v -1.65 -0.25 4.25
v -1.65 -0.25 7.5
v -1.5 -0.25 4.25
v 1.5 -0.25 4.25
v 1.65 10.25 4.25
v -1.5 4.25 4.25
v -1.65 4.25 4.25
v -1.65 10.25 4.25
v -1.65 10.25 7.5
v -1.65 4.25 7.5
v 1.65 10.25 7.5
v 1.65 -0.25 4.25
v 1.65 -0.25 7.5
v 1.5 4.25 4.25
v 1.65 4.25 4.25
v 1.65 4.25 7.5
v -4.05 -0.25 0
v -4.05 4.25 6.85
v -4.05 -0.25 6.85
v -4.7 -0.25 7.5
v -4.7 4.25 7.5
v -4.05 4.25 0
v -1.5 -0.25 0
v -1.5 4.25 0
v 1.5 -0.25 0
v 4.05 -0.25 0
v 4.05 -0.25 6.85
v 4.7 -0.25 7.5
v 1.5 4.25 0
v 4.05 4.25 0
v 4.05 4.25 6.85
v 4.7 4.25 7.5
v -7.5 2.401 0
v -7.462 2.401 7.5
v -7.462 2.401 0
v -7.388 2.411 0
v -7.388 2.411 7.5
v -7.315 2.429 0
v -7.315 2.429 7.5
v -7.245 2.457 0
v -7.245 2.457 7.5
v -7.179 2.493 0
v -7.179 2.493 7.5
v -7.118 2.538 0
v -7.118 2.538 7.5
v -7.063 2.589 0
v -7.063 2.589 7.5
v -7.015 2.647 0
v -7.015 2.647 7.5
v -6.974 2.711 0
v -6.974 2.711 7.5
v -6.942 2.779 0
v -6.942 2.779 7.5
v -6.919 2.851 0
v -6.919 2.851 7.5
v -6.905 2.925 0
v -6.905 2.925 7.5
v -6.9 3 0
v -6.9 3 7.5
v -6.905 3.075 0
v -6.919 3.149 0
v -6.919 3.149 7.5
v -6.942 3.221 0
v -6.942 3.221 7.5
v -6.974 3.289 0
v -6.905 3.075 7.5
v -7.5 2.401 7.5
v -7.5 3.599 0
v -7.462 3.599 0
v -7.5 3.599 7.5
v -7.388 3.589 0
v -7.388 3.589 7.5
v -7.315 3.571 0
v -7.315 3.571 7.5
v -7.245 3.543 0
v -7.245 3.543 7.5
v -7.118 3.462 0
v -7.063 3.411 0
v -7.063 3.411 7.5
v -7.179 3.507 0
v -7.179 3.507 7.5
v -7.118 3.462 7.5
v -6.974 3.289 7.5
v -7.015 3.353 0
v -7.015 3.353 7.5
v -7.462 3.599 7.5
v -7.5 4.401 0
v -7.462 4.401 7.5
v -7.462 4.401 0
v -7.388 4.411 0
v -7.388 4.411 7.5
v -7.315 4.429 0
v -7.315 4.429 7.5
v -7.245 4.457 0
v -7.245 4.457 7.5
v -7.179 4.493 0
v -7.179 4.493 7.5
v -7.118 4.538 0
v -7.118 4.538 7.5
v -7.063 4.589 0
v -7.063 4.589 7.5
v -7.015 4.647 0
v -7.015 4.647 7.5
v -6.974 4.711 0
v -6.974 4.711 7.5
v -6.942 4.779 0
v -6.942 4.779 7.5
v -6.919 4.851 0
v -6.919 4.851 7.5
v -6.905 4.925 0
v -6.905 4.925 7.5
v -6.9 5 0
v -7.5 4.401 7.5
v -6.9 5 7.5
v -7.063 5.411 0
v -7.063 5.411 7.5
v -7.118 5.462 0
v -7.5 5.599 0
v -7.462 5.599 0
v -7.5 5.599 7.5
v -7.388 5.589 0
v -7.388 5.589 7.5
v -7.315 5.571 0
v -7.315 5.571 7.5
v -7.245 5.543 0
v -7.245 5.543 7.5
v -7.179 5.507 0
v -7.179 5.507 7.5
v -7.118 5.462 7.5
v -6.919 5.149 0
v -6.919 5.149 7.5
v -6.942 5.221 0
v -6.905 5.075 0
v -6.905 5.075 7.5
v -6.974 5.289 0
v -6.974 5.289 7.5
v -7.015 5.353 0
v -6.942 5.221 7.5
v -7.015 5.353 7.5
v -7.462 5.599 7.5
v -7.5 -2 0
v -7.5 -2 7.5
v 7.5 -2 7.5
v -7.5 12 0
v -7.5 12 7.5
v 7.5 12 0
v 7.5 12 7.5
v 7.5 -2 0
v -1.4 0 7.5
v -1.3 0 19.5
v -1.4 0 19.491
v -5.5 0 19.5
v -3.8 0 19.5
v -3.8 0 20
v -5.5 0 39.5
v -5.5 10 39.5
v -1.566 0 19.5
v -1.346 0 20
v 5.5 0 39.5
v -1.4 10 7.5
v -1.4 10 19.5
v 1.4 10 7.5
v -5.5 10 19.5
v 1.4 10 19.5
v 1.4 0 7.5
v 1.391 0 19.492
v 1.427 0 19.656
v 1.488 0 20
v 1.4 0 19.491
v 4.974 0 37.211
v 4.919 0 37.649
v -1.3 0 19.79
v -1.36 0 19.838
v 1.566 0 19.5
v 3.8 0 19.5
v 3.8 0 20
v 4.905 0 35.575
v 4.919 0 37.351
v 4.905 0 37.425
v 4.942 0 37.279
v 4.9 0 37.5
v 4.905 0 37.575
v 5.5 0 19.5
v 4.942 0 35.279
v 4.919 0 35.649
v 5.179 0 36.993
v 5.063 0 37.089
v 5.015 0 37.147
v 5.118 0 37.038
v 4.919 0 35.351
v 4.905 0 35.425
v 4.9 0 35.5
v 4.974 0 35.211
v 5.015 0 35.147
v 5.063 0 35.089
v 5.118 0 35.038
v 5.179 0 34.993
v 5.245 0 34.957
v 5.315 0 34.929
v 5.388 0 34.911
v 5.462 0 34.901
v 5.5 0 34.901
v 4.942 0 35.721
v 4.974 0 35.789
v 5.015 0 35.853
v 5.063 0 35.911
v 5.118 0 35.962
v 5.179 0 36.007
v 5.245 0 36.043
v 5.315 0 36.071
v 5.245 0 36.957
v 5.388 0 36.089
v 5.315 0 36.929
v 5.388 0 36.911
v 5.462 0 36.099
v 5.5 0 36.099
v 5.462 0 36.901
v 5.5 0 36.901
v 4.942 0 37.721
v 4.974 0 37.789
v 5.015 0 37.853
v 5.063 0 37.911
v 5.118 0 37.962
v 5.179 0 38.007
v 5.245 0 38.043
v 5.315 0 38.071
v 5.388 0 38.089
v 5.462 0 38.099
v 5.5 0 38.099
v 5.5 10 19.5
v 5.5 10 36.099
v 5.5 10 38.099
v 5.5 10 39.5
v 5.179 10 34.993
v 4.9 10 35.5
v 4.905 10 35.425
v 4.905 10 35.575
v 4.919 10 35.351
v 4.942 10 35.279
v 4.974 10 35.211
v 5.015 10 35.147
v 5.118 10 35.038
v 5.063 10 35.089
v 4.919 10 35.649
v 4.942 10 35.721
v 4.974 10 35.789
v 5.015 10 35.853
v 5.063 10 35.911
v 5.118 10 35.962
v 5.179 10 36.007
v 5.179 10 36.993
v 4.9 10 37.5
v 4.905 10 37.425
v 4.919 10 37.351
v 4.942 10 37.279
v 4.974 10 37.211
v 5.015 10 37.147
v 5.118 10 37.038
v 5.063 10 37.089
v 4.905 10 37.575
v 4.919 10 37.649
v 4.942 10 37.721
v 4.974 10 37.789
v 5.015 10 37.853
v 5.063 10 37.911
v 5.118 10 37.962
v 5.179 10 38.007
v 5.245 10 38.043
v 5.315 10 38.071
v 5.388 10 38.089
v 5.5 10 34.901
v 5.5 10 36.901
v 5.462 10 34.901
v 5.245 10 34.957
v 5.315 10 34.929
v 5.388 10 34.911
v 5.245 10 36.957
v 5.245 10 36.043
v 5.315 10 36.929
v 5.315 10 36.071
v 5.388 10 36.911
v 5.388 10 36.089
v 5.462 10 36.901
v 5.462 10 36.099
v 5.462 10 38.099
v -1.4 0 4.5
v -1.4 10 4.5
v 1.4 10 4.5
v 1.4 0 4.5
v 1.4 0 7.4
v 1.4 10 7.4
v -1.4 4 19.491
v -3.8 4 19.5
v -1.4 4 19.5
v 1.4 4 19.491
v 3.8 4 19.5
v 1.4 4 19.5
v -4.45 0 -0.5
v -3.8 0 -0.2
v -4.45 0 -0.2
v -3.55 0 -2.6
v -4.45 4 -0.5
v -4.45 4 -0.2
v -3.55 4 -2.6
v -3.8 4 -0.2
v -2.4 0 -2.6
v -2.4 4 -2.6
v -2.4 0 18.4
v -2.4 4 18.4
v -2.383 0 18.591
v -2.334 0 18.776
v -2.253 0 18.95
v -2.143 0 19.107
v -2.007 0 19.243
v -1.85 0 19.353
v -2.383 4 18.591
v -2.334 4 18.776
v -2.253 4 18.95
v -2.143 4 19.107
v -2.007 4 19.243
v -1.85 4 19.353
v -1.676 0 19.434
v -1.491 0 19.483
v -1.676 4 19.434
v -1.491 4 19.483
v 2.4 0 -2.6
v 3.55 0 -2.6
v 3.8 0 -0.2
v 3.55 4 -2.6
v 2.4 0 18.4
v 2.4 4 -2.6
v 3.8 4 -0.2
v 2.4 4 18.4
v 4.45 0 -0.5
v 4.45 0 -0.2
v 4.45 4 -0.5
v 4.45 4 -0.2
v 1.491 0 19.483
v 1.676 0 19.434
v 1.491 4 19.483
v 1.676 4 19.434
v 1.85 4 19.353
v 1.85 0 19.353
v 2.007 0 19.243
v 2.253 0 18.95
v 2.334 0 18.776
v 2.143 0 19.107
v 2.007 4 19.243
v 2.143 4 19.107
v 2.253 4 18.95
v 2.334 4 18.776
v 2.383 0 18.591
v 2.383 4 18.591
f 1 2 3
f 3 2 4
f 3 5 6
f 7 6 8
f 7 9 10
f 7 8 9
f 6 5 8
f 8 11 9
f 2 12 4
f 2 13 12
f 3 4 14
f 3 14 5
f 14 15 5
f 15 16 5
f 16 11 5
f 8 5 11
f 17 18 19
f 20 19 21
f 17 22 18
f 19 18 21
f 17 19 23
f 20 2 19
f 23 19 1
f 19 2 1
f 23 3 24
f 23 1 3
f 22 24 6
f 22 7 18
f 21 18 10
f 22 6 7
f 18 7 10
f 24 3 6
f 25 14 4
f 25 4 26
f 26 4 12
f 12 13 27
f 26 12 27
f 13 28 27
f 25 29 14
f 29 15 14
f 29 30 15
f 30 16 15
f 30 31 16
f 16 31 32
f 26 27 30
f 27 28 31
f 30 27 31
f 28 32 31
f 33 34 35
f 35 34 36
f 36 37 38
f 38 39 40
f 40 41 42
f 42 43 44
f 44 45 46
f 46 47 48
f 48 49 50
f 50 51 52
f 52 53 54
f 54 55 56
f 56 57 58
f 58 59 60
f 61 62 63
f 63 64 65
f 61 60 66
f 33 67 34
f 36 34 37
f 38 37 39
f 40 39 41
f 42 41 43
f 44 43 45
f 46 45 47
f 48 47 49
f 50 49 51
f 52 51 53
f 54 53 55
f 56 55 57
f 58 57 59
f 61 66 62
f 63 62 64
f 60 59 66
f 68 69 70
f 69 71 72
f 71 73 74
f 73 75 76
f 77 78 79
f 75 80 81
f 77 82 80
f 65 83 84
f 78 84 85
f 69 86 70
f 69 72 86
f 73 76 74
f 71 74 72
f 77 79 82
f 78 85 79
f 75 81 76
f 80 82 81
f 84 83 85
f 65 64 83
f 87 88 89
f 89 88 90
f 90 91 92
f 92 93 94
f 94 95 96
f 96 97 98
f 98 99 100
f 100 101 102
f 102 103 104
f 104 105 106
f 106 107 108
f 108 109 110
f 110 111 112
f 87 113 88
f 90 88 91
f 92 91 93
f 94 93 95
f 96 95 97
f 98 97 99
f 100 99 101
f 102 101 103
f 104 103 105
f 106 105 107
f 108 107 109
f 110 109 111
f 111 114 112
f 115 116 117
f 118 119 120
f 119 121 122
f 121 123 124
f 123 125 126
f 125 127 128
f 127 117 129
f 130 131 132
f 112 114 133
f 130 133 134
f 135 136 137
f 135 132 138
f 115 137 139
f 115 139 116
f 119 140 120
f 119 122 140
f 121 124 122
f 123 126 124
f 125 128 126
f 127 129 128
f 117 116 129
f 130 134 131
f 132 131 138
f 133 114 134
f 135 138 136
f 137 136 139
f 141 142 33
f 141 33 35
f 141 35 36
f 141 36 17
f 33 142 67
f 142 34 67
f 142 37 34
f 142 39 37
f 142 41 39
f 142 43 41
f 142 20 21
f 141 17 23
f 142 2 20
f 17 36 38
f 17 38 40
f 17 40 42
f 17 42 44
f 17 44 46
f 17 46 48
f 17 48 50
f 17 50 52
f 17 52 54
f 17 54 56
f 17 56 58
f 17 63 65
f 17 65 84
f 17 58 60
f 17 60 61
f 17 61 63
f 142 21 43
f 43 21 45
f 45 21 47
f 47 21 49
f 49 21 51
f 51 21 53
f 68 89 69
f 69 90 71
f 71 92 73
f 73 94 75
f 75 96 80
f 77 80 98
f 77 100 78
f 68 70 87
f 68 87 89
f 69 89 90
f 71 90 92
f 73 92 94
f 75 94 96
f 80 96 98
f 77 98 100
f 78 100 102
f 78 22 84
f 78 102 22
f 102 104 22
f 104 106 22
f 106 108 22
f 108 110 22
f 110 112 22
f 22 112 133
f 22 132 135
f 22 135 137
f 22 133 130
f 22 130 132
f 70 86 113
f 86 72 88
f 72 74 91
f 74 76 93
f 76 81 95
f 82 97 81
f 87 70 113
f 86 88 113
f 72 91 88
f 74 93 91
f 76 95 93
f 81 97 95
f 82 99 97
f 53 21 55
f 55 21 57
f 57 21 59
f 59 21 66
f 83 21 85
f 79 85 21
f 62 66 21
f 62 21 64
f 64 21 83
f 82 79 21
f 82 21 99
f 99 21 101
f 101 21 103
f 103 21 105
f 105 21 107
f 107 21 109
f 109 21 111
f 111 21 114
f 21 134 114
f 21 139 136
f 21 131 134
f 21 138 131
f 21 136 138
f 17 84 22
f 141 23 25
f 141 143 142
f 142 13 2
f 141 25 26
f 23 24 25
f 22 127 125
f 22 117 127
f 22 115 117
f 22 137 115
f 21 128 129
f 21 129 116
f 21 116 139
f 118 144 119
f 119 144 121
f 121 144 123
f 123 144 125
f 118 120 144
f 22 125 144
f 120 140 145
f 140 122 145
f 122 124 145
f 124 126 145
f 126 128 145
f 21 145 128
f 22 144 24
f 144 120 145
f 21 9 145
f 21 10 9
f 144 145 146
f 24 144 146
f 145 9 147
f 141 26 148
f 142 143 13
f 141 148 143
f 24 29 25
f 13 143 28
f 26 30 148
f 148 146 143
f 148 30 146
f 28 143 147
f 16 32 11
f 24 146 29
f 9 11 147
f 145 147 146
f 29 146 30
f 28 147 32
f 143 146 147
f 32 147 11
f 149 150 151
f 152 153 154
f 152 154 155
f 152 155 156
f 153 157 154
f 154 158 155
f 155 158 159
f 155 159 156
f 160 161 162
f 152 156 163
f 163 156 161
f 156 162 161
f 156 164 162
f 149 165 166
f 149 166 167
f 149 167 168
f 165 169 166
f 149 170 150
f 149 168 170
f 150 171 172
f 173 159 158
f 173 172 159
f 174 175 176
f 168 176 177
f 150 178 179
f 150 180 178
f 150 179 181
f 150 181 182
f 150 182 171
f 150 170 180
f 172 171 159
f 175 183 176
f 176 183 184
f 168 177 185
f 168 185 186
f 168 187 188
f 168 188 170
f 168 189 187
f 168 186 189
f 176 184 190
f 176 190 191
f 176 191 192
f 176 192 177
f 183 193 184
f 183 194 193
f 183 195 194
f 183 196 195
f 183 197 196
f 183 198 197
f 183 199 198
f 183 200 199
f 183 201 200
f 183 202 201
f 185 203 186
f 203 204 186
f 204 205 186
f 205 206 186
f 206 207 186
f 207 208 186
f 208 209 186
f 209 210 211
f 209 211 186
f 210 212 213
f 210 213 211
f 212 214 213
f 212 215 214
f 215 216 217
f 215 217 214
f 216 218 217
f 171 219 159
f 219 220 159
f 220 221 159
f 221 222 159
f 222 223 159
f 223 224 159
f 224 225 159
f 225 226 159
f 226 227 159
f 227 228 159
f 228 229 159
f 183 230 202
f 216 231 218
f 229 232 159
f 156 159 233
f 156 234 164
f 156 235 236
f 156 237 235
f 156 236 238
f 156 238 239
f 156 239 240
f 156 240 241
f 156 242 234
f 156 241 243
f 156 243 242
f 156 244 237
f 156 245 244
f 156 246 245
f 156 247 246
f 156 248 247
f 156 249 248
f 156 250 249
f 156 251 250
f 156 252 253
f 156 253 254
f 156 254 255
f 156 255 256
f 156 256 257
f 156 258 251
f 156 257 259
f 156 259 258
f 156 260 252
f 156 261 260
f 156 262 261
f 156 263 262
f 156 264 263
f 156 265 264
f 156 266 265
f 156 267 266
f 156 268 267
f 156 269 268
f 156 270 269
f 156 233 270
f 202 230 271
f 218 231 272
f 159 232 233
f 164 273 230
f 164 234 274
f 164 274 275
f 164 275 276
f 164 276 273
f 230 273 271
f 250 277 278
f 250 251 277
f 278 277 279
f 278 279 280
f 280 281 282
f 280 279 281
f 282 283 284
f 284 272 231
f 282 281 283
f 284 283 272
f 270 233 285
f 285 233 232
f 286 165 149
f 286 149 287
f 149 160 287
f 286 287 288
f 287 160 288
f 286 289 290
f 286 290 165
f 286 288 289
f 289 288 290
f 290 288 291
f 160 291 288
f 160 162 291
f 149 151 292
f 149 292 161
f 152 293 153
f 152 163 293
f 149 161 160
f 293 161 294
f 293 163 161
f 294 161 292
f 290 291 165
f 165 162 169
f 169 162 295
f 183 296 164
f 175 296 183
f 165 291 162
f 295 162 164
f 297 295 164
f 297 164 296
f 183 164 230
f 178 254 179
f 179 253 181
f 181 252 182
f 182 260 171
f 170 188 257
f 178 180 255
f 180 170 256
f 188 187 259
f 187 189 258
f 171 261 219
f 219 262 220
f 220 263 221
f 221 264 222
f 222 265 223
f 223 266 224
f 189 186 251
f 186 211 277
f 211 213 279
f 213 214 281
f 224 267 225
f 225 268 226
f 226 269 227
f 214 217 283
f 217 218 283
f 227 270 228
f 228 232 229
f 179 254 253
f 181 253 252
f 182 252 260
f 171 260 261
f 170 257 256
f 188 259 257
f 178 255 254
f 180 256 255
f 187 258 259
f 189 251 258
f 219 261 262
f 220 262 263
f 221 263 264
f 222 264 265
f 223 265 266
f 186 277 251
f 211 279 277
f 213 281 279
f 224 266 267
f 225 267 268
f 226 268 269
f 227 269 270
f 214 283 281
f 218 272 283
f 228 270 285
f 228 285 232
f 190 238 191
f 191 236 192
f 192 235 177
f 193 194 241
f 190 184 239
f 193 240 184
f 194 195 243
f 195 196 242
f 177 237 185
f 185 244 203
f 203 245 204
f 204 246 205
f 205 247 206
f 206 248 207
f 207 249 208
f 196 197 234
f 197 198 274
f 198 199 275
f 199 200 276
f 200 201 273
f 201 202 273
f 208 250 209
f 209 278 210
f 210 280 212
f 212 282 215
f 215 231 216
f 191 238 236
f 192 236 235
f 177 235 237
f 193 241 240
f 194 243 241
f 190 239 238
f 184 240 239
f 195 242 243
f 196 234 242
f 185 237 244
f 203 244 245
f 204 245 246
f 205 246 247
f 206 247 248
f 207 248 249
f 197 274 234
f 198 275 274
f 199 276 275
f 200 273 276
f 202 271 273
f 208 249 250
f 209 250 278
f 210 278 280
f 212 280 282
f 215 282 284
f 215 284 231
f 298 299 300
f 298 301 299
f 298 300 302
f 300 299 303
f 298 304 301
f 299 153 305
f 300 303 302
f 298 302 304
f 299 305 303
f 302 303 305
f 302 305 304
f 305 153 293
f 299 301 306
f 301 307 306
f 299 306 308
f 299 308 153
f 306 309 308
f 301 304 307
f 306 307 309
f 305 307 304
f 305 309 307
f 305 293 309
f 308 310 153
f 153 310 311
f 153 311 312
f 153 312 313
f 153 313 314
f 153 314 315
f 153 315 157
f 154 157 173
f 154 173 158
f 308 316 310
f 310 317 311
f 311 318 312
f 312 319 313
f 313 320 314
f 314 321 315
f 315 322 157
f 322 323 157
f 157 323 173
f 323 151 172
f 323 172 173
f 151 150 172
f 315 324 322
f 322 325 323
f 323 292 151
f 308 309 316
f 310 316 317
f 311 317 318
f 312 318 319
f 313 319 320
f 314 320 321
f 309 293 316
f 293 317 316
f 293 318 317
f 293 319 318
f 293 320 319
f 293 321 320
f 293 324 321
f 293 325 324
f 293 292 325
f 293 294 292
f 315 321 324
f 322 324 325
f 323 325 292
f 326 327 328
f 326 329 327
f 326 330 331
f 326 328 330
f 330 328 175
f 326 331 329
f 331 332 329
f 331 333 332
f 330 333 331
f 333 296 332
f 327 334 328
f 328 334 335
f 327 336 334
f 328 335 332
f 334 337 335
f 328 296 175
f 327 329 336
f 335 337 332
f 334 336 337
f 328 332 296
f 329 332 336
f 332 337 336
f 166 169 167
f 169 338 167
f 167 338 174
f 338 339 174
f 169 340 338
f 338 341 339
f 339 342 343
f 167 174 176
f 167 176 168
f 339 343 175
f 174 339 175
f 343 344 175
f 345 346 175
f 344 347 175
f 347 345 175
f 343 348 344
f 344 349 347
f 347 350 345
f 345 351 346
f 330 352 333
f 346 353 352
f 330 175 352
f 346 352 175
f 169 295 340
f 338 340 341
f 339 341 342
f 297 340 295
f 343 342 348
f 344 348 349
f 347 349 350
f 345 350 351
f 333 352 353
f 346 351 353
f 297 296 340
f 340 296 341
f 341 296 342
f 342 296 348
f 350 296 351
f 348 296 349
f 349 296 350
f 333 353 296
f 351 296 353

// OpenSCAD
$fn = 50;

difference() {
	union() {
		translate(v = [0, 0, 0]) {
			rotate(a = [0, 0, 0]) {
				difference() {
					union() {
						translate(v = [-7.5, -2.0, 0]) {
							cube(size = [15.0, 14.0, 7.5]);
						}
					}
					union() {
						translate(v = [-1.65, -0.25, 4.25]) {
							cube(size = [3.3, 10.5, 3.35]);
						}
						translate(v = [0, 4.25, 0]) {
							rotate(a = [90, 0, 0]) {
								linear_extrude(height = 4.5) {
									polygon(points = [[-1.5, -0.1], [-4.05, -0.1], [-4.05, 6.85], [-4.8, 7.6], [-0.75, 7.6], [-1.5, 6.85]]);
								}
							}
						}
						translate(v = [0, 4.25, 0]) {
							rotate(a = [90, 0, 0]) {
								linear_extrude(height = 4.5) {
									polygon(points = [[1.5, -0.1], [4.05, -0.1], [4.05, 6.85], [4.8, 7.6], [0.75, 7.6], [1.5, 6.85]]);
								}
							}
						}
						translate(v = [-7.5, 3, -0.1]) {
							cylinder(h = 7.7, r = 0.6);
						}
						translate(v = [-7.5, 5, -0.1]) {
							cylinder(h = 7.7, r = 0.6);
						}
					}
				}
			}
		}
		translate(v = [0, 0, 7.5]) {
			rotate(a = [0, 0, 0]) {
				union() {
					difference() {
						union() {
							translate(v = [-5.5, 0, 0]) {
								cube(size = [11.0, 10.0, 32.0]);
							}
							translate(v = [-1.4, 0, -3.0]) {
								cube(size = [2.8, 10.0, 3.1]);
							}
						}
						union() {
							translate(v = [-5.6, -0.1, -0.1]) {
								cube(size = [4.199999999999999, 10.2, 12.1]);
							}
							translate(v = [1.4, -0.1, -0.1]) {
								cube(size = [4.199999999999999, 10.2, 12.1]);
							}
							translate(v = [5.5, 10.1, 30.0]) {
								rotate(a = [90, 0, 0]) {
									cylinder(h = 10.2, r = 0.6);
								}
							}
							translate(v = [5.5, 10.1, 28.0]) {
								rotate(a = [90, 0, 0]) {
									cylinder(h = 10.2, r = 0.6);
								}
							}
						}
					}
					union() {
						translate(v = [0, 4.0, 0]) {
							rotate(a = [90, 0, 0]) {
								linear_extrude(height = 4.0) {
									polygon(points = [[-2.4, -10.1], [-3.55, -10.1], [-4.45, -8.0], [-4.45, -7.7], [-3.8, -7.7], [-3.8, 12.5], [-1.3, 12.5], [-1.3, 12.0], [-1.491013, 11.983289], [-1.676222, 11.933662], [-1.85, 11.852628], [-2.007066, 11.742649], [-2.142649, 11.607066], [-2.252628, 11.45], [-2.333662, 11.276222], [-2.383289, 11.091013], [-2.4, 10.9]]);
								}
							}
						}
						translate(v = [0, 4.0, 0]) {
							rotate(a = [90, 0, 0]) {
								linear_extrude(height = 4.0) {
									polygon(points = [[2.4, -10.1], [3.55, -10.1], [4.45, -8.0], [4.45, -7.7], [3.8, -7.7], [3.8, 12.5], [1.3, 12.5], [1.3, 12.0], [1.491013, 11.983289], [1.676222, 11.933662], [1.85, 11.852628], [2.007066, 11.742649], [2.142649, 11.607066], [2.252628, 11.45], [2.333662, 11.276222], [2.383289, 11.091013], [2.4, 10.9]]);
								}
							}
						}
					}
				}
			}
		}
	}
	union();
}
